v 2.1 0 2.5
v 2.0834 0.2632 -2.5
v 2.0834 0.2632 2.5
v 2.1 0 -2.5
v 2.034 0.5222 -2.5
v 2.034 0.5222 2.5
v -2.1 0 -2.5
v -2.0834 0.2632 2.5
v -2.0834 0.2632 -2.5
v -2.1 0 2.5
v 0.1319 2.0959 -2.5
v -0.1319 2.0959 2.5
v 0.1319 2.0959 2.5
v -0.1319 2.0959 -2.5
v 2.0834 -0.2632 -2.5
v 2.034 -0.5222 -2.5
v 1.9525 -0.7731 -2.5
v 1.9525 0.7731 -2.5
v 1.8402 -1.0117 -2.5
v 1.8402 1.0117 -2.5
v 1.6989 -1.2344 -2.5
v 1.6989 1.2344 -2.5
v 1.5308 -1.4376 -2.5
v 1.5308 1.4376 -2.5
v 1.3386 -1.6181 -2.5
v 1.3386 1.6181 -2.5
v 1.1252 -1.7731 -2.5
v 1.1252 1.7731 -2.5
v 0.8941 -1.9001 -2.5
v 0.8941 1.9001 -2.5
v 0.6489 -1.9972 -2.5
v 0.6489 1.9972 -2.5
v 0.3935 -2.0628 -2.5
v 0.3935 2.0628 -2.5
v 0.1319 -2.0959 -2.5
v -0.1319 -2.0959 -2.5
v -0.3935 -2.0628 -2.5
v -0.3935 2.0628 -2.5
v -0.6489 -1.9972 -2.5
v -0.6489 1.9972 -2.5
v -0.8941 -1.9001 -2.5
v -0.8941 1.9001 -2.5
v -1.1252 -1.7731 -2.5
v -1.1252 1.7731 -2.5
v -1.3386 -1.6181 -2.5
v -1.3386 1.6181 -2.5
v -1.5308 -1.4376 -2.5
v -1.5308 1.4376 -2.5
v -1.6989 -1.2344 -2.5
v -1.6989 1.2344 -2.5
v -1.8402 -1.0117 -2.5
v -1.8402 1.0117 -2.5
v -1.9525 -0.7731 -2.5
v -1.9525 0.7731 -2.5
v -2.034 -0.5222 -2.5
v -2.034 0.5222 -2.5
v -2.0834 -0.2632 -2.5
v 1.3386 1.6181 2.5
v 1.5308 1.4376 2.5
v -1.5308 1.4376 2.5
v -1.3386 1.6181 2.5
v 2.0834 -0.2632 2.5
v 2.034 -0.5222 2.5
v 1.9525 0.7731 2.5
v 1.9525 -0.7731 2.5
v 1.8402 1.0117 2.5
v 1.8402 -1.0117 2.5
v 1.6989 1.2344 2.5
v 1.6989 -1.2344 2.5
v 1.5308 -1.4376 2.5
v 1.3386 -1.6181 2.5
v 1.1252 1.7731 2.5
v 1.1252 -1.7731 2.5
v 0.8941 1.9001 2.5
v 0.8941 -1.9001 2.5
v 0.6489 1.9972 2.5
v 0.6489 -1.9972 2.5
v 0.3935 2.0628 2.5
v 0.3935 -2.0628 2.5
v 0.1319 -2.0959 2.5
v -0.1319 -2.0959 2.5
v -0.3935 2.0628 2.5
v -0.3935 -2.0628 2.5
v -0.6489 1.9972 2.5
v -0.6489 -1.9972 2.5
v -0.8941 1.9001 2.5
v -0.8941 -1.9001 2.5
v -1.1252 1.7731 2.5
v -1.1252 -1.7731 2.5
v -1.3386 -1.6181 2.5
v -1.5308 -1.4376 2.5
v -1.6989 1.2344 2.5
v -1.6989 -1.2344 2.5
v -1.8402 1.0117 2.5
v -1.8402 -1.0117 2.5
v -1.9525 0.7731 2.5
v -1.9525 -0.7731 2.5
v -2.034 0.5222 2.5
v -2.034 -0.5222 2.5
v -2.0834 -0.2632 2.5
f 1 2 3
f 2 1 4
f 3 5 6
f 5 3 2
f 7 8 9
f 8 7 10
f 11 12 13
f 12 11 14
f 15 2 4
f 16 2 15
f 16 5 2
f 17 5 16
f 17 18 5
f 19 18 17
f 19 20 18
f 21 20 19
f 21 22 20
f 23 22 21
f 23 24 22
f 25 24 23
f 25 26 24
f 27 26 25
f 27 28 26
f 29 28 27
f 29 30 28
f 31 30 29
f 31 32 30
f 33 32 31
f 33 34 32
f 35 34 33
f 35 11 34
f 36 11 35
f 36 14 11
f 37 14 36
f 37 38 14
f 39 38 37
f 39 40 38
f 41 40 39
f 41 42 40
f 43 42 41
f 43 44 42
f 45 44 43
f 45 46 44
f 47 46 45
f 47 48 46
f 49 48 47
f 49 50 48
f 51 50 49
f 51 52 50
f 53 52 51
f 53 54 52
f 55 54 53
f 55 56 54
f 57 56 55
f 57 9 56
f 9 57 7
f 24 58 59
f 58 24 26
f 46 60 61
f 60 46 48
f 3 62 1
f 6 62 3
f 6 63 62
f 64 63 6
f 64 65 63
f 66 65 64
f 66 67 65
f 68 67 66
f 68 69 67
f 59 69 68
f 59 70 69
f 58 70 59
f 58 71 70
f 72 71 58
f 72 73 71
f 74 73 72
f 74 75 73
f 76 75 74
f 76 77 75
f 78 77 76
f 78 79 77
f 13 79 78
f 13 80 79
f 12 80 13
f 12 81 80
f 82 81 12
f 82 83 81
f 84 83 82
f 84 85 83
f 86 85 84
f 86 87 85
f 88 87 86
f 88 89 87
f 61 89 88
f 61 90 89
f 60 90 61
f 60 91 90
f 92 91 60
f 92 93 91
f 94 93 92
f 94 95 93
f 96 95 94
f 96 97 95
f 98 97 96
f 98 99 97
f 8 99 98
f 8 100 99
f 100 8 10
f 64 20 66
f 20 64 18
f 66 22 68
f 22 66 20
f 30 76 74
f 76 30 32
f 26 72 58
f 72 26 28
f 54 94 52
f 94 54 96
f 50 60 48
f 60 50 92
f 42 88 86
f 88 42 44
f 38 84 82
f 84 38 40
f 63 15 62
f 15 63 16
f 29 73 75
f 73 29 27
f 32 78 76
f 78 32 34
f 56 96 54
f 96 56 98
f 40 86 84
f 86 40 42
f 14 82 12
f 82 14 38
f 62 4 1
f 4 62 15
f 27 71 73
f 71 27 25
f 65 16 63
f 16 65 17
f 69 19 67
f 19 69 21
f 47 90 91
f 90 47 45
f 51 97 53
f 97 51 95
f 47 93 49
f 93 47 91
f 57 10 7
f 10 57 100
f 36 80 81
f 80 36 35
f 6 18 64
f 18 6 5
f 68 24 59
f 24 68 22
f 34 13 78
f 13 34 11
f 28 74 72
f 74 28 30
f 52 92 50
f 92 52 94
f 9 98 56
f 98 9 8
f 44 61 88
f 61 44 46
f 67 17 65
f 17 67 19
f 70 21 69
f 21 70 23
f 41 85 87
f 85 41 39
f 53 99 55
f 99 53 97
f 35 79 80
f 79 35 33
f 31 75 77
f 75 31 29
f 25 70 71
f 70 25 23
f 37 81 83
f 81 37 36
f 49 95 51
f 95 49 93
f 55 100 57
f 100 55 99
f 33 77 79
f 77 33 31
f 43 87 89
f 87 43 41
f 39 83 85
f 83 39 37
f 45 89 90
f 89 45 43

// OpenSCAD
$fn = 50;


difference() {
	union() {
		translate(v = [0, 0, -2.5000000000]) {
			cylinder(h = 5, r = 2.1000000000);
		}
	}
	union() {
		translate(v = [0, 0, -100.0000000000]) {
			cylinder(h = 200, r = 0);
		}
	}
}
